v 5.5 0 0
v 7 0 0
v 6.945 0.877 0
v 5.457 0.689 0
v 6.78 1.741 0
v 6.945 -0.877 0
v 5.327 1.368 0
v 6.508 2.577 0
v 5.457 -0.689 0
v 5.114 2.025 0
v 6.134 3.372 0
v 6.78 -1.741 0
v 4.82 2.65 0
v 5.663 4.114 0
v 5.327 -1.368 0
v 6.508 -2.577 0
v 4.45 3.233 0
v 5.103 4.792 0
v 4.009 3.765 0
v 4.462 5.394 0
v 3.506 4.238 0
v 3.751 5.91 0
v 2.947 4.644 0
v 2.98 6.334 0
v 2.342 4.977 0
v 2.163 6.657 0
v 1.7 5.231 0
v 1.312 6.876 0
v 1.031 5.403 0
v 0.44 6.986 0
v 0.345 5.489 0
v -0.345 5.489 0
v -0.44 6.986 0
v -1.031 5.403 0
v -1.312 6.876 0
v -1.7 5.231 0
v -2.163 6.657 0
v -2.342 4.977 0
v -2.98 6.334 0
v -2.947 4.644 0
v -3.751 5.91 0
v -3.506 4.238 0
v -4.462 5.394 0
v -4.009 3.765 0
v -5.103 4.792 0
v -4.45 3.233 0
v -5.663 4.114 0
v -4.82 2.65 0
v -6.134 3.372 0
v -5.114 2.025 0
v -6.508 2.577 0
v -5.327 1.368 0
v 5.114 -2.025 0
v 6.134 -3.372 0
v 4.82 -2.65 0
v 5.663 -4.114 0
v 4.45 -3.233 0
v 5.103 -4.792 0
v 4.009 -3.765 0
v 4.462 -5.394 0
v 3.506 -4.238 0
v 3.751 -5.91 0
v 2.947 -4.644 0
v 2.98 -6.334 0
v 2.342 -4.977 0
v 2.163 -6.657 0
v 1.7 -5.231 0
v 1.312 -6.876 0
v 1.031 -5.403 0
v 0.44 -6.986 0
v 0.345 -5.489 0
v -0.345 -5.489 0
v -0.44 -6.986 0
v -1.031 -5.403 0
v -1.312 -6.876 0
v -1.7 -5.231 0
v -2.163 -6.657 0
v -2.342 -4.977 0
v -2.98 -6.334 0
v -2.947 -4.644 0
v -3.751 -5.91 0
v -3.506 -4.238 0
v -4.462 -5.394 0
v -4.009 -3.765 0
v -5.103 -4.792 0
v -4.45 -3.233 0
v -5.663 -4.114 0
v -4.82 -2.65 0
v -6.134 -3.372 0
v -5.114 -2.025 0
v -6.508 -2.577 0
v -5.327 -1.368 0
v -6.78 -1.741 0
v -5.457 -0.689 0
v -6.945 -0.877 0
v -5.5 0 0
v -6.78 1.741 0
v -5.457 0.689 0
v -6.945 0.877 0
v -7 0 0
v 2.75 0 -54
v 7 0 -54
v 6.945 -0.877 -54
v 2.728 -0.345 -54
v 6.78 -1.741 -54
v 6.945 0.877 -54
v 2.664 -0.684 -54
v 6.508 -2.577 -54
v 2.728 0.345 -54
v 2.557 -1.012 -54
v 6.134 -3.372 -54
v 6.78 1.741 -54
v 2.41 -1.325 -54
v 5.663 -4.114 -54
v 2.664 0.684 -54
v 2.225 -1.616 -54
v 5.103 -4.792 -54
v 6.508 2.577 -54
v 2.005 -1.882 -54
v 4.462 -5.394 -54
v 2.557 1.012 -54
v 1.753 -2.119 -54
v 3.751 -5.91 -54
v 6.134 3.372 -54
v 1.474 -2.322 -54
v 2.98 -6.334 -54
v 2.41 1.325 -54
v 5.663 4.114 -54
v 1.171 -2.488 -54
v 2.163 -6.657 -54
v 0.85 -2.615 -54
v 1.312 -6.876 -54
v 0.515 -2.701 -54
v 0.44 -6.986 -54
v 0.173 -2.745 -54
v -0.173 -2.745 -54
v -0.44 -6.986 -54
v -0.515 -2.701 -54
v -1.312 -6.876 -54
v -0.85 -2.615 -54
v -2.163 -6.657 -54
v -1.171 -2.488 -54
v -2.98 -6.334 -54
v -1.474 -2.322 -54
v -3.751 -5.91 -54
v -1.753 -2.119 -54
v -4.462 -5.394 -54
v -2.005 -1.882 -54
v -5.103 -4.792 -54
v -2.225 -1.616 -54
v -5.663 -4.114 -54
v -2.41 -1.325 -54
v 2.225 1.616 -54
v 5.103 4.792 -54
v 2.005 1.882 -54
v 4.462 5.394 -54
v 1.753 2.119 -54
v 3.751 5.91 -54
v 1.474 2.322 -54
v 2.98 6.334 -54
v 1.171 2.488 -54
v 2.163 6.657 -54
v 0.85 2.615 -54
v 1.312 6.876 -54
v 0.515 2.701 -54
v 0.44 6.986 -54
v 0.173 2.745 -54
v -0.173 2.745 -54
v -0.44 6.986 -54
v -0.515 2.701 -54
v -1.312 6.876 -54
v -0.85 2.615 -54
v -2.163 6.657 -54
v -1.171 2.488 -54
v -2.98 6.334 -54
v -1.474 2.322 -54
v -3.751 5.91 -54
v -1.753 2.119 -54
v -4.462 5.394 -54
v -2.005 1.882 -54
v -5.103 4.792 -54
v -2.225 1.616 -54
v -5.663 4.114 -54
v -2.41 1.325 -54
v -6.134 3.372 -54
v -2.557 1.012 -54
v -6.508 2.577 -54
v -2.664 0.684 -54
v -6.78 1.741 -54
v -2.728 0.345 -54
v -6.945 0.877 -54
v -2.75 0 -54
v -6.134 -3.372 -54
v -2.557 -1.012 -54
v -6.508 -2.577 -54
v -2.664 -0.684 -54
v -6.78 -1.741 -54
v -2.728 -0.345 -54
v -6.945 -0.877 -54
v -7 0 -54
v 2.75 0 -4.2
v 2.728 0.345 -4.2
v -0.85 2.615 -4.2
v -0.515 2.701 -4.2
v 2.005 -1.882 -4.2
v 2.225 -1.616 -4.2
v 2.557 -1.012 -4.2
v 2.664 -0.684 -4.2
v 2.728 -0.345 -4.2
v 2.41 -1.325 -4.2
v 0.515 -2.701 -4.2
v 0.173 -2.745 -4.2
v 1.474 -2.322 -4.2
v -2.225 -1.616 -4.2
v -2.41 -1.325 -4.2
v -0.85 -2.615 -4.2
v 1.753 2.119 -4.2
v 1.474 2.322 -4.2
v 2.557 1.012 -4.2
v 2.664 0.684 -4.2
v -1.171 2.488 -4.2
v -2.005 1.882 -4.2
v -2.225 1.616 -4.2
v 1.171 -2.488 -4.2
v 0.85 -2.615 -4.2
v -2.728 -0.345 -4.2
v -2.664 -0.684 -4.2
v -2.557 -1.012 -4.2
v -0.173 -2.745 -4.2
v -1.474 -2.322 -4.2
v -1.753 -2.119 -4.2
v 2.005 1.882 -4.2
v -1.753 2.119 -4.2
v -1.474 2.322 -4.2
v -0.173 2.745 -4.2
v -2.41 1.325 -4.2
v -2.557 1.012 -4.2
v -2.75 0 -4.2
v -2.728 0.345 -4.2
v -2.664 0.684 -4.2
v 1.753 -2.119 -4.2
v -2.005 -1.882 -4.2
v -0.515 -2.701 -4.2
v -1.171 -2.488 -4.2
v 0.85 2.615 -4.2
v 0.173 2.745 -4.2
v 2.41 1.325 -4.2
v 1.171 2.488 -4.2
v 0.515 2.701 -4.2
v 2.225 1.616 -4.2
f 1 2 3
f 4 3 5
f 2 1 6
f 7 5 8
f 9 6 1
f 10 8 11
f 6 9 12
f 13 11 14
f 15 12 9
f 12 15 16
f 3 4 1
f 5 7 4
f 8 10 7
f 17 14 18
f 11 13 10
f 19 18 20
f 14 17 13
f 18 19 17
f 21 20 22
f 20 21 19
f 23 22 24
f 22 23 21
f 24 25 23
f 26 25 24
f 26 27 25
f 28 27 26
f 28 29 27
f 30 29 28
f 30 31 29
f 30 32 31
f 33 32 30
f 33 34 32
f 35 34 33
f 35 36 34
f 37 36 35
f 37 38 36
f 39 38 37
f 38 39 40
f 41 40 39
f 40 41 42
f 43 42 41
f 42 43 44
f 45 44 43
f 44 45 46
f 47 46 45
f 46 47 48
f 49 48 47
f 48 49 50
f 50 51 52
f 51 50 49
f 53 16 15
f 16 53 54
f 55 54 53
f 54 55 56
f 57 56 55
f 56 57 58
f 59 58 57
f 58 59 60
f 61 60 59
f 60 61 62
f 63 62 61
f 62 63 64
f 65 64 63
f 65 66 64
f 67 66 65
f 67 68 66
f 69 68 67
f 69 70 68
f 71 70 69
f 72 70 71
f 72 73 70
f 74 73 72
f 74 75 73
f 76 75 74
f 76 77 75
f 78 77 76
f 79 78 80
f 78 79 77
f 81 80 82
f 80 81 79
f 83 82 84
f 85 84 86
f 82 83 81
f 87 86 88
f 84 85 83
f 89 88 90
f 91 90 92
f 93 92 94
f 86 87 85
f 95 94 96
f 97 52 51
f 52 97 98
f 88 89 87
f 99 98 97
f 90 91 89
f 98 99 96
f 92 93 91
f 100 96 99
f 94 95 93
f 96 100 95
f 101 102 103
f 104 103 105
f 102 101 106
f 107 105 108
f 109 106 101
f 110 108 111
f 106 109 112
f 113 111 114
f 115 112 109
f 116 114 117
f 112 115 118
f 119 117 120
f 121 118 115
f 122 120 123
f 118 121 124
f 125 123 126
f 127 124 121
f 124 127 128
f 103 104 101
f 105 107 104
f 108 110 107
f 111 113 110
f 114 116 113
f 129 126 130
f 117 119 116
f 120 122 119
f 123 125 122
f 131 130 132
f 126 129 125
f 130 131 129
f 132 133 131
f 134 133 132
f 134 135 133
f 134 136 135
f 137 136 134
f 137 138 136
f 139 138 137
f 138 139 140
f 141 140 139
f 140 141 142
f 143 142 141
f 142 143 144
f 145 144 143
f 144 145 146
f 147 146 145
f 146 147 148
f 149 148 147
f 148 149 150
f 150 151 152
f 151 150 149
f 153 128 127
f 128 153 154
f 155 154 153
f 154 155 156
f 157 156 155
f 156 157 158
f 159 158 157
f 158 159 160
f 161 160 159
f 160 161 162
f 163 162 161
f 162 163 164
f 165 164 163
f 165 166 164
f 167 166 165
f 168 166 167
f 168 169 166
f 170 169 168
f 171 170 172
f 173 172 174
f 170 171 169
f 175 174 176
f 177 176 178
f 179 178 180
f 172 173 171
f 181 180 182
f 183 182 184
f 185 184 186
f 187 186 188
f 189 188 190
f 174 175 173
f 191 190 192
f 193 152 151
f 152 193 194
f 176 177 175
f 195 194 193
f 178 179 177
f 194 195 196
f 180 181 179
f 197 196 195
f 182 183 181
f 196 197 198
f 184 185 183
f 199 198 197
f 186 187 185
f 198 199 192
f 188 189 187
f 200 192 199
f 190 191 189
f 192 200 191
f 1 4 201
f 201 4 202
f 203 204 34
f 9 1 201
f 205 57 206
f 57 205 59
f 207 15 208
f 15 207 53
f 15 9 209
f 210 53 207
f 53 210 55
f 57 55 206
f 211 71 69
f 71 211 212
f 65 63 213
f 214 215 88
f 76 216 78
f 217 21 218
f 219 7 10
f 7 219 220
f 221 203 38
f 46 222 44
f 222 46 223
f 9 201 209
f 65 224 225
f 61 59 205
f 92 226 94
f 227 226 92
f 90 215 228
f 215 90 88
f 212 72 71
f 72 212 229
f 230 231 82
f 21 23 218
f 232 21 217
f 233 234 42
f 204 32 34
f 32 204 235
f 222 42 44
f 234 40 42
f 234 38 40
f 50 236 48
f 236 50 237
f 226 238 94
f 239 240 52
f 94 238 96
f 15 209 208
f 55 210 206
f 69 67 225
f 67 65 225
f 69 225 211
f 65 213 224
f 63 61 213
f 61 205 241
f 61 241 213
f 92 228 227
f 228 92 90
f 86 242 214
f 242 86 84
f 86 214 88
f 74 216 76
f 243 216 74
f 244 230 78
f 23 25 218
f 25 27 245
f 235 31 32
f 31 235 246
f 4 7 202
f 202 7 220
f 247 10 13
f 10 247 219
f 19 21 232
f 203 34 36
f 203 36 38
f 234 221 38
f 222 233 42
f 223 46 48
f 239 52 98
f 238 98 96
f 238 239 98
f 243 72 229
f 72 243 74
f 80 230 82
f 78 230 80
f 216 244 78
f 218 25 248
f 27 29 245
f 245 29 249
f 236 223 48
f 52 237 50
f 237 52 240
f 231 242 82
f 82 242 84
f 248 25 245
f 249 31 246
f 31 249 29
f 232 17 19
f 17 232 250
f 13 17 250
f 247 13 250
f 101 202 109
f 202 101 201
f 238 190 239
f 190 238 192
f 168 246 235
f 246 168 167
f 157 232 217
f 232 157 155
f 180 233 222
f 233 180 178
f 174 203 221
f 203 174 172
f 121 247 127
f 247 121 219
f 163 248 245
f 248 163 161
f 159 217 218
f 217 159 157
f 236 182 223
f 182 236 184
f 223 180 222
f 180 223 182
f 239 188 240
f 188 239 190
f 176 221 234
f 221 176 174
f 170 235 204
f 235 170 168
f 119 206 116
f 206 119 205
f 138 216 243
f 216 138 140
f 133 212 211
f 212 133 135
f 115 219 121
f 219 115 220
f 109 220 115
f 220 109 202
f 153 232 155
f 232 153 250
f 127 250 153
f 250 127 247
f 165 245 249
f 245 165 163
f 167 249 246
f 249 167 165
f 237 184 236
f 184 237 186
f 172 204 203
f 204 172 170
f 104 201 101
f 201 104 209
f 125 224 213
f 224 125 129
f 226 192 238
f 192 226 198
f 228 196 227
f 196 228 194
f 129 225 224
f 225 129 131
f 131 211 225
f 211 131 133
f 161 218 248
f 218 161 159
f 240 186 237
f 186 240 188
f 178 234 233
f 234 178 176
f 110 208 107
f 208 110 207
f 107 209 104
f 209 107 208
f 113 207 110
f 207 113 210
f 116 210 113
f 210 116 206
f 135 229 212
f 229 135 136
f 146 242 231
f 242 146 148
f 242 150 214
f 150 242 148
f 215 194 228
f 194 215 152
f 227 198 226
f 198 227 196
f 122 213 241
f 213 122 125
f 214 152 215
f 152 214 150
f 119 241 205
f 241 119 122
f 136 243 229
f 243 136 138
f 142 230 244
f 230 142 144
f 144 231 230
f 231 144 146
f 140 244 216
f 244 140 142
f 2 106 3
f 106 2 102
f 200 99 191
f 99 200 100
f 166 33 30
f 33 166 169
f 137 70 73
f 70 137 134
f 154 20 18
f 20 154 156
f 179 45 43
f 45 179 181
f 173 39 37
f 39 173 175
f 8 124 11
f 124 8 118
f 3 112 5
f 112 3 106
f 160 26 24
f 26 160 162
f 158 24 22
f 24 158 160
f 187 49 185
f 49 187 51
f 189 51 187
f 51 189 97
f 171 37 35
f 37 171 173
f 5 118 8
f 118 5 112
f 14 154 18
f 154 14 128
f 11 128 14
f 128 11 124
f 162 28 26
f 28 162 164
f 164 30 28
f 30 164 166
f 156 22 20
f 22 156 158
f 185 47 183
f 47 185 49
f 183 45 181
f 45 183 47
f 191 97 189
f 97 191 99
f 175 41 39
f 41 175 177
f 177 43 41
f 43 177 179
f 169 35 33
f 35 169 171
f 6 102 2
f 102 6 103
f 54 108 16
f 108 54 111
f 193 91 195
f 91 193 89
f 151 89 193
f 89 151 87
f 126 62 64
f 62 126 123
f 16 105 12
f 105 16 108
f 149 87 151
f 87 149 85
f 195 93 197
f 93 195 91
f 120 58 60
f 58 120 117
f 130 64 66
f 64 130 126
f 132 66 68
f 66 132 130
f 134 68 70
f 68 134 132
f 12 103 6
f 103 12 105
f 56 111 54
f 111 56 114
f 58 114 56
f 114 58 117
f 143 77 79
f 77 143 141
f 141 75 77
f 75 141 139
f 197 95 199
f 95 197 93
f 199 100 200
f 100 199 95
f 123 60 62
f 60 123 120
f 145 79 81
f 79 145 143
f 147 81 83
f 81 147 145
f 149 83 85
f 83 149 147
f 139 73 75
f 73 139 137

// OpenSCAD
$fn = 50;


difference() {
	union() {
		translate(v = [0, 0, -54.0000000000]) {
			cylinder(h = 54, r = 7.0000000000);
		}
	}
	union() {
		translate(v = [0, 0, 0]) {
			rotate(a = [0, 0, 0]) {
				difference() {
					union() {
						#translate(v = [0, 0, -54.0000000000]) {
							cylinder(h = 54, r = 2.2500000000);
						}
						#translate(v = [0, 0, -4.2000000000]) {
							cylinder(h = 4.2000000000, r1 = 2.7500000000, r2 = 5.5000000000);
						}
						#translate(v = [0, 0, -54.0000000000]) {
							cylinder(h = 54, r = 2.7500000000);
						}
						#translate(v = [0, 0, -54.0000000000]) {
							cylinder(h = 54, r = 2.2500000000);
						}
					}
					union();
				}
			}
		}
	}
}
